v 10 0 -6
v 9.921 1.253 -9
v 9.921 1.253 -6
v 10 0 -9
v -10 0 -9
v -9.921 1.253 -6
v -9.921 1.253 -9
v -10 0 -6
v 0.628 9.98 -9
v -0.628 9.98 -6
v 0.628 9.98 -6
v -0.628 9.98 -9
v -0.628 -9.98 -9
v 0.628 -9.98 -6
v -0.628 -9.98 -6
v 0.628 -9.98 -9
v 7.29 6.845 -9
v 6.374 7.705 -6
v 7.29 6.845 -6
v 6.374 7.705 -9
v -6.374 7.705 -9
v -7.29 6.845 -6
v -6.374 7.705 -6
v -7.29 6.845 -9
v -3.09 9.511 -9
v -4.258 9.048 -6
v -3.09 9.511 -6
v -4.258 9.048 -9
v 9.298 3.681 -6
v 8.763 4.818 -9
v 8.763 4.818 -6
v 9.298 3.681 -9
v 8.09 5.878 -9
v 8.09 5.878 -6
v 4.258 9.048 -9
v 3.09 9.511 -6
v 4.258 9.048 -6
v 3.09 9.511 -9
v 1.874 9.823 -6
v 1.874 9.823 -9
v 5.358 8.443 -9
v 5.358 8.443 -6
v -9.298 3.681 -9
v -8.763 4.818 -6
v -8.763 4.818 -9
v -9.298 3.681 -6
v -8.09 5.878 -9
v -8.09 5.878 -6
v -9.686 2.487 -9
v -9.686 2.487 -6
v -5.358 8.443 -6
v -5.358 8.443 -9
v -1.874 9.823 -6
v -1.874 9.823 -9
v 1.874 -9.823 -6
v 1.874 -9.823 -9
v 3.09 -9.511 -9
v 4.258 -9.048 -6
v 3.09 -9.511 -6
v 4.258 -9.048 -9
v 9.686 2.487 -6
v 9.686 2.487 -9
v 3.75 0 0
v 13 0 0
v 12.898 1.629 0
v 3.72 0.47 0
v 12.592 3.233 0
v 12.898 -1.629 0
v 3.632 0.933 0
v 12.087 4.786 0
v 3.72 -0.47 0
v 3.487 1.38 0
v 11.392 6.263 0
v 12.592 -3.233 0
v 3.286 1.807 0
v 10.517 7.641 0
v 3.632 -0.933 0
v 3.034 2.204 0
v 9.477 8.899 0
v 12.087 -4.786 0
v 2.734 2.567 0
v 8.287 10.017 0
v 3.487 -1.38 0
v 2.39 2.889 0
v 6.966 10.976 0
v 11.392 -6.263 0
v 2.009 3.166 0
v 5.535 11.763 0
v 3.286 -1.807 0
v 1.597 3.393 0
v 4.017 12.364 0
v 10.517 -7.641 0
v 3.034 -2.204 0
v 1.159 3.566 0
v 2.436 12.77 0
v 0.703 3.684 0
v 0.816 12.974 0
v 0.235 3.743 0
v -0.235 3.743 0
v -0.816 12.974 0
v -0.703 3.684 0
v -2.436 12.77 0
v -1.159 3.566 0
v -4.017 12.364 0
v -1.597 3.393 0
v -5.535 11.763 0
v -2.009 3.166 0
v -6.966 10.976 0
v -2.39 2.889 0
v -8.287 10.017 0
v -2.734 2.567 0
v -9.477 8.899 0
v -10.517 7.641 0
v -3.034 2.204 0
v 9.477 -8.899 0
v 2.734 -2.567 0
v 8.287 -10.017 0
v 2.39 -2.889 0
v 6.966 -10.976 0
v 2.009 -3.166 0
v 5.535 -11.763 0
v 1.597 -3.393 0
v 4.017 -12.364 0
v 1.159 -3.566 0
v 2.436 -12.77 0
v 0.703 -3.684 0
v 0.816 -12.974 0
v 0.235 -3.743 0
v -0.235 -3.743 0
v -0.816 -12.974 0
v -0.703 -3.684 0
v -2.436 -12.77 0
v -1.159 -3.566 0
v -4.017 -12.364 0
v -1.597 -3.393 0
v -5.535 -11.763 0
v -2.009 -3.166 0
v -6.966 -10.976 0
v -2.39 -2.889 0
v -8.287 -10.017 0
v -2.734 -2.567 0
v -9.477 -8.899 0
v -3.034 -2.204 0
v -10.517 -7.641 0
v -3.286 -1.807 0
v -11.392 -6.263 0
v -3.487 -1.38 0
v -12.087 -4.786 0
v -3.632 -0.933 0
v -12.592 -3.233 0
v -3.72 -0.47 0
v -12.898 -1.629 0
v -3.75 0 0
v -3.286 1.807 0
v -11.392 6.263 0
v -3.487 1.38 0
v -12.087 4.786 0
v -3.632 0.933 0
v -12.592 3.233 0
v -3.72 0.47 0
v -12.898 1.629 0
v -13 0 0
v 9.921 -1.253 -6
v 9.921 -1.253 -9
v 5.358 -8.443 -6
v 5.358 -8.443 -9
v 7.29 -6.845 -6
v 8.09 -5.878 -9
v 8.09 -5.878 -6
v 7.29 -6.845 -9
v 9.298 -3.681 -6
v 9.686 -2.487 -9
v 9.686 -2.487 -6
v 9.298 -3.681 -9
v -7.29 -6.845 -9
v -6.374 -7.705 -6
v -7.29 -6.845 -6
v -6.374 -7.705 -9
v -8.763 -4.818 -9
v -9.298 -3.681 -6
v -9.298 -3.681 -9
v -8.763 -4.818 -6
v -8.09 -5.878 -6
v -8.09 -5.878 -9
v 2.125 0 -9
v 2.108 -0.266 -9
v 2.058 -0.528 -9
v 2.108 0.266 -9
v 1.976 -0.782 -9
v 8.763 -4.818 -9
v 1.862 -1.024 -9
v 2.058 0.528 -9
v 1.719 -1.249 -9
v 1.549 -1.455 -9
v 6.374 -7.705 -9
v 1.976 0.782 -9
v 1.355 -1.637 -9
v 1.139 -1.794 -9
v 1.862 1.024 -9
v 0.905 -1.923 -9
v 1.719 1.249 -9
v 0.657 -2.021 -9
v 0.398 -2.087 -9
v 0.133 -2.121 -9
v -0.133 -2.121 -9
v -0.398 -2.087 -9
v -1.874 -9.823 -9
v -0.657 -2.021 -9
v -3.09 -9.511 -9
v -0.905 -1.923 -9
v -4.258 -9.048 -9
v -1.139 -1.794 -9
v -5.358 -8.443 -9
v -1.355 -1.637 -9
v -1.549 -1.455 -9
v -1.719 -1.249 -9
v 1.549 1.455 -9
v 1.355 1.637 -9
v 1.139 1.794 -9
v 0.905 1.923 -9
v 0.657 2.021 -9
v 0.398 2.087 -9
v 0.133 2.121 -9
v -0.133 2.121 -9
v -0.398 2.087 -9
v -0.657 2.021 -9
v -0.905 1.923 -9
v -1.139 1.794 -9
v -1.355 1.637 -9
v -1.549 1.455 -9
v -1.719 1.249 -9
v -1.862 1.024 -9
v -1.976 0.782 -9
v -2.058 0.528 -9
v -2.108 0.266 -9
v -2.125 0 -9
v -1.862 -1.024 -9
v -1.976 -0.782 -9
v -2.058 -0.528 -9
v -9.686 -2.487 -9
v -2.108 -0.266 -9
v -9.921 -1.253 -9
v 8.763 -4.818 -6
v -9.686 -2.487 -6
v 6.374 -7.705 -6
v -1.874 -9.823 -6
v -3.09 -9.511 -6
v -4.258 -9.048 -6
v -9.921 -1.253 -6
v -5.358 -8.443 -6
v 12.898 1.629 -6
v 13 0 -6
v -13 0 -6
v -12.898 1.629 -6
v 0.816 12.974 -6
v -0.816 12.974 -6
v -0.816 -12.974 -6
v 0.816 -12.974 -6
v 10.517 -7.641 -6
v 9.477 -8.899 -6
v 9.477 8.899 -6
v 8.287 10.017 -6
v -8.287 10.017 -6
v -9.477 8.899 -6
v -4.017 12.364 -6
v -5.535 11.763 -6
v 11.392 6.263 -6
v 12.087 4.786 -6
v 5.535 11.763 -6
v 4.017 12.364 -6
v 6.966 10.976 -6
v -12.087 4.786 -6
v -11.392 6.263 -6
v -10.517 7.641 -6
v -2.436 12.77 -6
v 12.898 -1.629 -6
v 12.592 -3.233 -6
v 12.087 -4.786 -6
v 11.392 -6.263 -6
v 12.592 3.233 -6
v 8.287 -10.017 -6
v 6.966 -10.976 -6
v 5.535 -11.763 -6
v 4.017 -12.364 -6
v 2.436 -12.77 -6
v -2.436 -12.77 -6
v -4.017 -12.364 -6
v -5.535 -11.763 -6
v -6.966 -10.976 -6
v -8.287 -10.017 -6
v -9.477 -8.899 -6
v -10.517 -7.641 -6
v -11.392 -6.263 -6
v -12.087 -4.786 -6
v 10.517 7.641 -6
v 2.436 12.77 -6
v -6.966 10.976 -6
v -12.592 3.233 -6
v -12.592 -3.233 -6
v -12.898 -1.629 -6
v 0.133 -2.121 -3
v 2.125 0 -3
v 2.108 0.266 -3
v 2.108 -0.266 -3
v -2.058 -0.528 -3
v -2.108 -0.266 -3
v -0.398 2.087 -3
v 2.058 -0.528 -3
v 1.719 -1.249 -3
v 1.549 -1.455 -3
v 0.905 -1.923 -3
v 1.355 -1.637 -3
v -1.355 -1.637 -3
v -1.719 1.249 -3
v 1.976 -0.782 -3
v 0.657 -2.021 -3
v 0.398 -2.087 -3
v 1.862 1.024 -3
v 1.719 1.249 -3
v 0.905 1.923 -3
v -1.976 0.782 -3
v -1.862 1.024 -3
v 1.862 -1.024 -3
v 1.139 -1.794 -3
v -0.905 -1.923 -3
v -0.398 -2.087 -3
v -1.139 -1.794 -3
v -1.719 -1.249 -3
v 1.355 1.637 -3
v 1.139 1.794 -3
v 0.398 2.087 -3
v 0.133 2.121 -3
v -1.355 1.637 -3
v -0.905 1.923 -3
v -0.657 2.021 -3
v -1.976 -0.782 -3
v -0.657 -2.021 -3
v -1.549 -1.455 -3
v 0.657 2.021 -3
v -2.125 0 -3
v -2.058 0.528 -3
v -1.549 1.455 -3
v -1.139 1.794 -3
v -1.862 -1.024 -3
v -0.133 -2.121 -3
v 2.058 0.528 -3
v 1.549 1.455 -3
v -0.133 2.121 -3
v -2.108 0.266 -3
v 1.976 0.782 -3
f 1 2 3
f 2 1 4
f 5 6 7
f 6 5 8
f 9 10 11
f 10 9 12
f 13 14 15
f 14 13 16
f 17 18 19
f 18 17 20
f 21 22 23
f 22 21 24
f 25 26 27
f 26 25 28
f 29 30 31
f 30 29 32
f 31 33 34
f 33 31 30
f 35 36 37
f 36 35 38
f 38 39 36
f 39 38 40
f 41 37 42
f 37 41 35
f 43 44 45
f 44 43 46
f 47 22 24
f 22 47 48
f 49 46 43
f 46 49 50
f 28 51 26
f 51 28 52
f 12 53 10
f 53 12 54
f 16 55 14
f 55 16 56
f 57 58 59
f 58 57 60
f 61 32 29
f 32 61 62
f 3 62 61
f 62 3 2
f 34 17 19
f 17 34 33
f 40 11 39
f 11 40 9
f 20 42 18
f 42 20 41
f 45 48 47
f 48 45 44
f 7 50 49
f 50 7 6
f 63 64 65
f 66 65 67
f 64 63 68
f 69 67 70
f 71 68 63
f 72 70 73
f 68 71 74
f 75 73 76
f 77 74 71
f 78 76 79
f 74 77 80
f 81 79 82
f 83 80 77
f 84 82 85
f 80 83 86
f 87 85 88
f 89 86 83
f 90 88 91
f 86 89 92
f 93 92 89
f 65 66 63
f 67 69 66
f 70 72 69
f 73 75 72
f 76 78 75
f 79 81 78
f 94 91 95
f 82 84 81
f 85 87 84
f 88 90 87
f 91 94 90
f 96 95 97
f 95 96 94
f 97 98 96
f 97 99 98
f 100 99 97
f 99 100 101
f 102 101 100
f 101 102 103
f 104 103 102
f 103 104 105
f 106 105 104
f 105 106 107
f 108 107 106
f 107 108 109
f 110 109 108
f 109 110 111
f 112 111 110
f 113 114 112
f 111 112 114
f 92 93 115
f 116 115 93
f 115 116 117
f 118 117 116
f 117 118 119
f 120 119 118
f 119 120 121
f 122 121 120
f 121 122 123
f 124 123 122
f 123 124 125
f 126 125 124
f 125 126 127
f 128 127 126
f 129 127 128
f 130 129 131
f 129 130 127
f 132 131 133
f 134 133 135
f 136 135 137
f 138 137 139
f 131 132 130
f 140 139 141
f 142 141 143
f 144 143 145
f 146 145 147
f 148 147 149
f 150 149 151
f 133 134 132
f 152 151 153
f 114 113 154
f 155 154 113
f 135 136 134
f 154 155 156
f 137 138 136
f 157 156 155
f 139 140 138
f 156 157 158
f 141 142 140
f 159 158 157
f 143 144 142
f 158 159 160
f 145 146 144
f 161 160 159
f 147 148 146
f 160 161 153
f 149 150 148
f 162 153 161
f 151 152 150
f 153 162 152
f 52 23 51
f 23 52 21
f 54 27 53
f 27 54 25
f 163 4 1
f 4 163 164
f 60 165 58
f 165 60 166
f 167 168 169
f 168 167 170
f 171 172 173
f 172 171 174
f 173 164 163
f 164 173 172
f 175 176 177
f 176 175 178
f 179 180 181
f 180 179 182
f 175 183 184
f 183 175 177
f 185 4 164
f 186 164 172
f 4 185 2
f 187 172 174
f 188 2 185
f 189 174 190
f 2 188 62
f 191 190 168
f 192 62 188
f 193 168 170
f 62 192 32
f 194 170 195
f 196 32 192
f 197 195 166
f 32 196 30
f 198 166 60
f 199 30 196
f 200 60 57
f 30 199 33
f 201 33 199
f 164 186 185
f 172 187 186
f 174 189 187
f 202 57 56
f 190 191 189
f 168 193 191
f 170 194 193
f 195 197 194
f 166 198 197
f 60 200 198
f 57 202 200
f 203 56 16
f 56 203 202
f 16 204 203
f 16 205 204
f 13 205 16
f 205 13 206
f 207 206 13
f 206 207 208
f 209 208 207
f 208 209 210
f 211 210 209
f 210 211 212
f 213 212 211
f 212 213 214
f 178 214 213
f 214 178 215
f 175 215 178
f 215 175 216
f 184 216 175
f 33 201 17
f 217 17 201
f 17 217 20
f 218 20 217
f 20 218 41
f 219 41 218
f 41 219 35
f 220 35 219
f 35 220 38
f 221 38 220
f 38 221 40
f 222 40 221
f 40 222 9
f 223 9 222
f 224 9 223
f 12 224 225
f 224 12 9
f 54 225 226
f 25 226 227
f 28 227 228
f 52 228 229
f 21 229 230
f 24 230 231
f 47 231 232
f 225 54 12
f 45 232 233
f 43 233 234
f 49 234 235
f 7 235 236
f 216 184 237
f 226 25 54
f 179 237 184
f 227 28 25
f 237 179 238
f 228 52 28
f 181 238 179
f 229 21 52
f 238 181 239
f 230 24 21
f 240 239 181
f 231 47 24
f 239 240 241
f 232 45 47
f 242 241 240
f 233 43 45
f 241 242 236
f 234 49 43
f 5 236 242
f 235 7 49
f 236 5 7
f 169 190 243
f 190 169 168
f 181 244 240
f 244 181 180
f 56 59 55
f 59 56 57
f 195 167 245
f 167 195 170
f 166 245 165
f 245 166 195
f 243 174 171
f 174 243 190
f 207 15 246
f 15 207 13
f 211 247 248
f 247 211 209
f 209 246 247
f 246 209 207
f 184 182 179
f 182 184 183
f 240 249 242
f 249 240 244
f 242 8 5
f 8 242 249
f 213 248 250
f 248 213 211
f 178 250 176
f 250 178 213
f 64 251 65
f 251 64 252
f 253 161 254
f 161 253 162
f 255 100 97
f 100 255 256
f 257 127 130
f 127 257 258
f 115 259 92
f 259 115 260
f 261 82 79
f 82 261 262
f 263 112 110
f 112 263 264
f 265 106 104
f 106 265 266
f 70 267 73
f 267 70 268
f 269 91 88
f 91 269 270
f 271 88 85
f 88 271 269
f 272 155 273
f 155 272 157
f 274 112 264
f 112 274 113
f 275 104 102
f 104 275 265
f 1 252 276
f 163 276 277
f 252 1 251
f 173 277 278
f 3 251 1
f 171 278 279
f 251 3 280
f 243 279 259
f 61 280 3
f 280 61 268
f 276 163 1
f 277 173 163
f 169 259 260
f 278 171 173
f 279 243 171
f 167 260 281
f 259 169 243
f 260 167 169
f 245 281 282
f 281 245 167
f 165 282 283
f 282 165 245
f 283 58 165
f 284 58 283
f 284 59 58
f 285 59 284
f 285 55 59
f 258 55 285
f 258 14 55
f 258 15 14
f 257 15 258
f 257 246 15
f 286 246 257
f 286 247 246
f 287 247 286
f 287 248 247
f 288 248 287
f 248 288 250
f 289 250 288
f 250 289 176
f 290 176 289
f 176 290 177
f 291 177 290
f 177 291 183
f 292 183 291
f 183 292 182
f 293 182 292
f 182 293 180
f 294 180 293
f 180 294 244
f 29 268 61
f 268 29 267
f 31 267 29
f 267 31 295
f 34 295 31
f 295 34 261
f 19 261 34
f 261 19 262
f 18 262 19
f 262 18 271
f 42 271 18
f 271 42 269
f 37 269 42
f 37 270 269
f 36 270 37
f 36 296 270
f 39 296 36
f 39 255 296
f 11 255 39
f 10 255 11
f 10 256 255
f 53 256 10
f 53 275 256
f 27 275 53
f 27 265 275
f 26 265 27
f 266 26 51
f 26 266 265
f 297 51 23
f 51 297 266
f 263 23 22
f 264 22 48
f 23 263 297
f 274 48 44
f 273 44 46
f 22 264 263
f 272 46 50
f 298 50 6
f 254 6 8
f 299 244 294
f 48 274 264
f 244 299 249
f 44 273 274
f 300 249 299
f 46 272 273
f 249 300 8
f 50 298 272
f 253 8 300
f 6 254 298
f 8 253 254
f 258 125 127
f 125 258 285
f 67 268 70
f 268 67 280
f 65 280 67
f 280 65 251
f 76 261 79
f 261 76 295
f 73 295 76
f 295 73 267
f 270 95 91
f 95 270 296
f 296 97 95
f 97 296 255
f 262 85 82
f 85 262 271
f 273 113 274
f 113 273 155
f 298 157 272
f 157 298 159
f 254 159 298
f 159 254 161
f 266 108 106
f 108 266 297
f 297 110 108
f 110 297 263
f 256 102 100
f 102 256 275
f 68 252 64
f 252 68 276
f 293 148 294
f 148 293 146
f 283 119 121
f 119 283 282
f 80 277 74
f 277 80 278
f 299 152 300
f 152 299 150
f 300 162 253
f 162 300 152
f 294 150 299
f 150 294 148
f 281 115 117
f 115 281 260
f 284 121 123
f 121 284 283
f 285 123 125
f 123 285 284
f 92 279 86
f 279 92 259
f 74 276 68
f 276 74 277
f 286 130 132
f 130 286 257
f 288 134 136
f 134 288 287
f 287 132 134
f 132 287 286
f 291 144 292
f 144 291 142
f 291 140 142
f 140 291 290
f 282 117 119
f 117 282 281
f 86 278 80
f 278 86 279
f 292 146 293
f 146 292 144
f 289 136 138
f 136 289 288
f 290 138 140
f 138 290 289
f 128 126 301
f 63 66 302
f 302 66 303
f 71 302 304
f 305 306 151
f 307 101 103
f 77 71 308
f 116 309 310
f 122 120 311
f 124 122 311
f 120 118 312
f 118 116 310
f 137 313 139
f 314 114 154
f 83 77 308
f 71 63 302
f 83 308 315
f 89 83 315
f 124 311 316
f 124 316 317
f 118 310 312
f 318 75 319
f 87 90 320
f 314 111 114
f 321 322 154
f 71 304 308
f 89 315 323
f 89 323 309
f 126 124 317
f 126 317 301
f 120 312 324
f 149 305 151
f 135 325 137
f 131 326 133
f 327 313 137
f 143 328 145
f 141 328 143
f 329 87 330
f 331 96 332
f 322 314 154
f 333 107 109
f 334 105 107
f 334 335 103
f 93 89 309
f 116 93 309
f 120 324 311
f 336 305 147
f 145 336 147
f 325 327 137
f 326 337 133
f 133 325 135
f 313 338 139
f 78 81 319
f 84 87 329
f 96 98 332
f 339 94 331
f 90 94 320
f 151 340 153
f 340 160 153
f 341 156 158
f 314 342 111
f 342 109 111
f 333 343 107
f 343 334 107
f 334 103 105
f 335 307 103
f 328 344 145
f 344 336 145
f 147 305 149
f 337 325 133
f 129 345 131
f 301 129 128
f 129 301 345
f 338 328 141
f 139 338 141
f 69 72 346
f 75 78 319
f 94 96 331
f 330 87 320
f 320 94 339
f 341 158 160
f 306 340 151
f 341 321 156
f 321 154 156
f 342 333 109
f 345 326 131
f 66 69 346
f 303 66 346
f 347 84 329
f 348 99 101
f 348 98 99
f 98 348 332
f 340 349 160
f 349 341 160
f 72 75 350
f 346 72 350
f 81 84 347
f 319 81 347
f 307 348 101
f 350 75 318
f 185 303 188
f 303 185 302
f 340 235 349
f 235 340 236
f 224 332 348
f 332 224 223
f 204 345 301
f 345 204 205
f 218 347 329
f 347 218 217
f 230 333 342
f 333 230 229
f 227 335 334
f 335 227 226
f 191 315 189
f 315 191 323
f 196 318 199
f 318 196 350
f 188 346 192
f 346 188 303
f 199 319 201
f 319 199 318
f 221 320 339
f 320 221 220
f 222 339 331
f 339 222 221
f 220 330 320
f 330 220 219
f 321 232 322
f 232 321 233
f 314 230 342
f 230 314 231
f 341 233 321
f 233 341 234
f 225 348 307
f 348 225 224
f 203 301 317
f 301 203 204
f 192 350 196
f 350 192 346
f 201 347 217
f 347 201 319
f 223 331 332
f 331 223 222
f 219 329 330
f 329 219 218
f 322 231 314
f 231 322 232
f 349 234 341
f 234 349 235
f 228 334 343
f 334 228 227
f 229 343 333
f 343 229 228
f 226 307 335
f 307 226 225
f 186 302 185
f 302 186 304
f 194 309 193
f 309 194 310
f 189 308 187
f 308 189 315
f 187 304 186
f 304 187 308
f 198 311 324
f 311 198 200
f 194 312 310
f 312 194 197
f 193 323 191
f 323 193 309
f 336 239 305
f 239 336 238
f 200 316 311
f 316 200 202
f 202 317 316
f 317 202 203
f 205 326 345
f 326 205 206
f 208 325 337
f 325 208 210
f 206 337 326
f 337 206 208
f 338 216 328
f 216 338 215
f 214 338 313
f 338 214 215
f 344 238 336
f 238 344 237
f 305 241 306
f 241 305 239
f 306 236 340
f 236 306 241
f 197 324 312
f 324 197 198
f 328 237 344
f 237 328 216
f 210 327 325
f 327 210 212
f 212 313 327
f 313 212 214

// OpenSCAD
$fn = 50;


difference() {
	union() {
		translate(v = [0, 0, -9.0000000000]) {
			cylinder(h = 9, r = 10.0000000000);
		}
		translate(v = [0, 0, -6.0000000000]) {
			cylinder(h = 6, r = 13.0000000000);
		}
	}
	union() {
		translate(v = [0, 0, 0]) {
			rotate(a = [0, 0, 0]) {
				difference() {
					union() {
						#translate(v = [0, 0, -9.0000000000]) {
							cylinder(h = 9, r = 2.0000000000);
						}
						#translate(v = [0, 0, -3]) {
							cylinder(h = 3, r = 10.0000000000, r1 = 2.1250000000, r2 = 3.7500000000);
						}
						#translate(v = [0, 0, -9.0000000000]) {
							cylinder(h = 9, r = 2.1250000000);
						}
						#translate(v = [0, 0, -9.0000000000]) {
							cylinder(h = 9, r = 2.0000000000);
						}
					}
					union();
				}
			}
		}
	}
}
